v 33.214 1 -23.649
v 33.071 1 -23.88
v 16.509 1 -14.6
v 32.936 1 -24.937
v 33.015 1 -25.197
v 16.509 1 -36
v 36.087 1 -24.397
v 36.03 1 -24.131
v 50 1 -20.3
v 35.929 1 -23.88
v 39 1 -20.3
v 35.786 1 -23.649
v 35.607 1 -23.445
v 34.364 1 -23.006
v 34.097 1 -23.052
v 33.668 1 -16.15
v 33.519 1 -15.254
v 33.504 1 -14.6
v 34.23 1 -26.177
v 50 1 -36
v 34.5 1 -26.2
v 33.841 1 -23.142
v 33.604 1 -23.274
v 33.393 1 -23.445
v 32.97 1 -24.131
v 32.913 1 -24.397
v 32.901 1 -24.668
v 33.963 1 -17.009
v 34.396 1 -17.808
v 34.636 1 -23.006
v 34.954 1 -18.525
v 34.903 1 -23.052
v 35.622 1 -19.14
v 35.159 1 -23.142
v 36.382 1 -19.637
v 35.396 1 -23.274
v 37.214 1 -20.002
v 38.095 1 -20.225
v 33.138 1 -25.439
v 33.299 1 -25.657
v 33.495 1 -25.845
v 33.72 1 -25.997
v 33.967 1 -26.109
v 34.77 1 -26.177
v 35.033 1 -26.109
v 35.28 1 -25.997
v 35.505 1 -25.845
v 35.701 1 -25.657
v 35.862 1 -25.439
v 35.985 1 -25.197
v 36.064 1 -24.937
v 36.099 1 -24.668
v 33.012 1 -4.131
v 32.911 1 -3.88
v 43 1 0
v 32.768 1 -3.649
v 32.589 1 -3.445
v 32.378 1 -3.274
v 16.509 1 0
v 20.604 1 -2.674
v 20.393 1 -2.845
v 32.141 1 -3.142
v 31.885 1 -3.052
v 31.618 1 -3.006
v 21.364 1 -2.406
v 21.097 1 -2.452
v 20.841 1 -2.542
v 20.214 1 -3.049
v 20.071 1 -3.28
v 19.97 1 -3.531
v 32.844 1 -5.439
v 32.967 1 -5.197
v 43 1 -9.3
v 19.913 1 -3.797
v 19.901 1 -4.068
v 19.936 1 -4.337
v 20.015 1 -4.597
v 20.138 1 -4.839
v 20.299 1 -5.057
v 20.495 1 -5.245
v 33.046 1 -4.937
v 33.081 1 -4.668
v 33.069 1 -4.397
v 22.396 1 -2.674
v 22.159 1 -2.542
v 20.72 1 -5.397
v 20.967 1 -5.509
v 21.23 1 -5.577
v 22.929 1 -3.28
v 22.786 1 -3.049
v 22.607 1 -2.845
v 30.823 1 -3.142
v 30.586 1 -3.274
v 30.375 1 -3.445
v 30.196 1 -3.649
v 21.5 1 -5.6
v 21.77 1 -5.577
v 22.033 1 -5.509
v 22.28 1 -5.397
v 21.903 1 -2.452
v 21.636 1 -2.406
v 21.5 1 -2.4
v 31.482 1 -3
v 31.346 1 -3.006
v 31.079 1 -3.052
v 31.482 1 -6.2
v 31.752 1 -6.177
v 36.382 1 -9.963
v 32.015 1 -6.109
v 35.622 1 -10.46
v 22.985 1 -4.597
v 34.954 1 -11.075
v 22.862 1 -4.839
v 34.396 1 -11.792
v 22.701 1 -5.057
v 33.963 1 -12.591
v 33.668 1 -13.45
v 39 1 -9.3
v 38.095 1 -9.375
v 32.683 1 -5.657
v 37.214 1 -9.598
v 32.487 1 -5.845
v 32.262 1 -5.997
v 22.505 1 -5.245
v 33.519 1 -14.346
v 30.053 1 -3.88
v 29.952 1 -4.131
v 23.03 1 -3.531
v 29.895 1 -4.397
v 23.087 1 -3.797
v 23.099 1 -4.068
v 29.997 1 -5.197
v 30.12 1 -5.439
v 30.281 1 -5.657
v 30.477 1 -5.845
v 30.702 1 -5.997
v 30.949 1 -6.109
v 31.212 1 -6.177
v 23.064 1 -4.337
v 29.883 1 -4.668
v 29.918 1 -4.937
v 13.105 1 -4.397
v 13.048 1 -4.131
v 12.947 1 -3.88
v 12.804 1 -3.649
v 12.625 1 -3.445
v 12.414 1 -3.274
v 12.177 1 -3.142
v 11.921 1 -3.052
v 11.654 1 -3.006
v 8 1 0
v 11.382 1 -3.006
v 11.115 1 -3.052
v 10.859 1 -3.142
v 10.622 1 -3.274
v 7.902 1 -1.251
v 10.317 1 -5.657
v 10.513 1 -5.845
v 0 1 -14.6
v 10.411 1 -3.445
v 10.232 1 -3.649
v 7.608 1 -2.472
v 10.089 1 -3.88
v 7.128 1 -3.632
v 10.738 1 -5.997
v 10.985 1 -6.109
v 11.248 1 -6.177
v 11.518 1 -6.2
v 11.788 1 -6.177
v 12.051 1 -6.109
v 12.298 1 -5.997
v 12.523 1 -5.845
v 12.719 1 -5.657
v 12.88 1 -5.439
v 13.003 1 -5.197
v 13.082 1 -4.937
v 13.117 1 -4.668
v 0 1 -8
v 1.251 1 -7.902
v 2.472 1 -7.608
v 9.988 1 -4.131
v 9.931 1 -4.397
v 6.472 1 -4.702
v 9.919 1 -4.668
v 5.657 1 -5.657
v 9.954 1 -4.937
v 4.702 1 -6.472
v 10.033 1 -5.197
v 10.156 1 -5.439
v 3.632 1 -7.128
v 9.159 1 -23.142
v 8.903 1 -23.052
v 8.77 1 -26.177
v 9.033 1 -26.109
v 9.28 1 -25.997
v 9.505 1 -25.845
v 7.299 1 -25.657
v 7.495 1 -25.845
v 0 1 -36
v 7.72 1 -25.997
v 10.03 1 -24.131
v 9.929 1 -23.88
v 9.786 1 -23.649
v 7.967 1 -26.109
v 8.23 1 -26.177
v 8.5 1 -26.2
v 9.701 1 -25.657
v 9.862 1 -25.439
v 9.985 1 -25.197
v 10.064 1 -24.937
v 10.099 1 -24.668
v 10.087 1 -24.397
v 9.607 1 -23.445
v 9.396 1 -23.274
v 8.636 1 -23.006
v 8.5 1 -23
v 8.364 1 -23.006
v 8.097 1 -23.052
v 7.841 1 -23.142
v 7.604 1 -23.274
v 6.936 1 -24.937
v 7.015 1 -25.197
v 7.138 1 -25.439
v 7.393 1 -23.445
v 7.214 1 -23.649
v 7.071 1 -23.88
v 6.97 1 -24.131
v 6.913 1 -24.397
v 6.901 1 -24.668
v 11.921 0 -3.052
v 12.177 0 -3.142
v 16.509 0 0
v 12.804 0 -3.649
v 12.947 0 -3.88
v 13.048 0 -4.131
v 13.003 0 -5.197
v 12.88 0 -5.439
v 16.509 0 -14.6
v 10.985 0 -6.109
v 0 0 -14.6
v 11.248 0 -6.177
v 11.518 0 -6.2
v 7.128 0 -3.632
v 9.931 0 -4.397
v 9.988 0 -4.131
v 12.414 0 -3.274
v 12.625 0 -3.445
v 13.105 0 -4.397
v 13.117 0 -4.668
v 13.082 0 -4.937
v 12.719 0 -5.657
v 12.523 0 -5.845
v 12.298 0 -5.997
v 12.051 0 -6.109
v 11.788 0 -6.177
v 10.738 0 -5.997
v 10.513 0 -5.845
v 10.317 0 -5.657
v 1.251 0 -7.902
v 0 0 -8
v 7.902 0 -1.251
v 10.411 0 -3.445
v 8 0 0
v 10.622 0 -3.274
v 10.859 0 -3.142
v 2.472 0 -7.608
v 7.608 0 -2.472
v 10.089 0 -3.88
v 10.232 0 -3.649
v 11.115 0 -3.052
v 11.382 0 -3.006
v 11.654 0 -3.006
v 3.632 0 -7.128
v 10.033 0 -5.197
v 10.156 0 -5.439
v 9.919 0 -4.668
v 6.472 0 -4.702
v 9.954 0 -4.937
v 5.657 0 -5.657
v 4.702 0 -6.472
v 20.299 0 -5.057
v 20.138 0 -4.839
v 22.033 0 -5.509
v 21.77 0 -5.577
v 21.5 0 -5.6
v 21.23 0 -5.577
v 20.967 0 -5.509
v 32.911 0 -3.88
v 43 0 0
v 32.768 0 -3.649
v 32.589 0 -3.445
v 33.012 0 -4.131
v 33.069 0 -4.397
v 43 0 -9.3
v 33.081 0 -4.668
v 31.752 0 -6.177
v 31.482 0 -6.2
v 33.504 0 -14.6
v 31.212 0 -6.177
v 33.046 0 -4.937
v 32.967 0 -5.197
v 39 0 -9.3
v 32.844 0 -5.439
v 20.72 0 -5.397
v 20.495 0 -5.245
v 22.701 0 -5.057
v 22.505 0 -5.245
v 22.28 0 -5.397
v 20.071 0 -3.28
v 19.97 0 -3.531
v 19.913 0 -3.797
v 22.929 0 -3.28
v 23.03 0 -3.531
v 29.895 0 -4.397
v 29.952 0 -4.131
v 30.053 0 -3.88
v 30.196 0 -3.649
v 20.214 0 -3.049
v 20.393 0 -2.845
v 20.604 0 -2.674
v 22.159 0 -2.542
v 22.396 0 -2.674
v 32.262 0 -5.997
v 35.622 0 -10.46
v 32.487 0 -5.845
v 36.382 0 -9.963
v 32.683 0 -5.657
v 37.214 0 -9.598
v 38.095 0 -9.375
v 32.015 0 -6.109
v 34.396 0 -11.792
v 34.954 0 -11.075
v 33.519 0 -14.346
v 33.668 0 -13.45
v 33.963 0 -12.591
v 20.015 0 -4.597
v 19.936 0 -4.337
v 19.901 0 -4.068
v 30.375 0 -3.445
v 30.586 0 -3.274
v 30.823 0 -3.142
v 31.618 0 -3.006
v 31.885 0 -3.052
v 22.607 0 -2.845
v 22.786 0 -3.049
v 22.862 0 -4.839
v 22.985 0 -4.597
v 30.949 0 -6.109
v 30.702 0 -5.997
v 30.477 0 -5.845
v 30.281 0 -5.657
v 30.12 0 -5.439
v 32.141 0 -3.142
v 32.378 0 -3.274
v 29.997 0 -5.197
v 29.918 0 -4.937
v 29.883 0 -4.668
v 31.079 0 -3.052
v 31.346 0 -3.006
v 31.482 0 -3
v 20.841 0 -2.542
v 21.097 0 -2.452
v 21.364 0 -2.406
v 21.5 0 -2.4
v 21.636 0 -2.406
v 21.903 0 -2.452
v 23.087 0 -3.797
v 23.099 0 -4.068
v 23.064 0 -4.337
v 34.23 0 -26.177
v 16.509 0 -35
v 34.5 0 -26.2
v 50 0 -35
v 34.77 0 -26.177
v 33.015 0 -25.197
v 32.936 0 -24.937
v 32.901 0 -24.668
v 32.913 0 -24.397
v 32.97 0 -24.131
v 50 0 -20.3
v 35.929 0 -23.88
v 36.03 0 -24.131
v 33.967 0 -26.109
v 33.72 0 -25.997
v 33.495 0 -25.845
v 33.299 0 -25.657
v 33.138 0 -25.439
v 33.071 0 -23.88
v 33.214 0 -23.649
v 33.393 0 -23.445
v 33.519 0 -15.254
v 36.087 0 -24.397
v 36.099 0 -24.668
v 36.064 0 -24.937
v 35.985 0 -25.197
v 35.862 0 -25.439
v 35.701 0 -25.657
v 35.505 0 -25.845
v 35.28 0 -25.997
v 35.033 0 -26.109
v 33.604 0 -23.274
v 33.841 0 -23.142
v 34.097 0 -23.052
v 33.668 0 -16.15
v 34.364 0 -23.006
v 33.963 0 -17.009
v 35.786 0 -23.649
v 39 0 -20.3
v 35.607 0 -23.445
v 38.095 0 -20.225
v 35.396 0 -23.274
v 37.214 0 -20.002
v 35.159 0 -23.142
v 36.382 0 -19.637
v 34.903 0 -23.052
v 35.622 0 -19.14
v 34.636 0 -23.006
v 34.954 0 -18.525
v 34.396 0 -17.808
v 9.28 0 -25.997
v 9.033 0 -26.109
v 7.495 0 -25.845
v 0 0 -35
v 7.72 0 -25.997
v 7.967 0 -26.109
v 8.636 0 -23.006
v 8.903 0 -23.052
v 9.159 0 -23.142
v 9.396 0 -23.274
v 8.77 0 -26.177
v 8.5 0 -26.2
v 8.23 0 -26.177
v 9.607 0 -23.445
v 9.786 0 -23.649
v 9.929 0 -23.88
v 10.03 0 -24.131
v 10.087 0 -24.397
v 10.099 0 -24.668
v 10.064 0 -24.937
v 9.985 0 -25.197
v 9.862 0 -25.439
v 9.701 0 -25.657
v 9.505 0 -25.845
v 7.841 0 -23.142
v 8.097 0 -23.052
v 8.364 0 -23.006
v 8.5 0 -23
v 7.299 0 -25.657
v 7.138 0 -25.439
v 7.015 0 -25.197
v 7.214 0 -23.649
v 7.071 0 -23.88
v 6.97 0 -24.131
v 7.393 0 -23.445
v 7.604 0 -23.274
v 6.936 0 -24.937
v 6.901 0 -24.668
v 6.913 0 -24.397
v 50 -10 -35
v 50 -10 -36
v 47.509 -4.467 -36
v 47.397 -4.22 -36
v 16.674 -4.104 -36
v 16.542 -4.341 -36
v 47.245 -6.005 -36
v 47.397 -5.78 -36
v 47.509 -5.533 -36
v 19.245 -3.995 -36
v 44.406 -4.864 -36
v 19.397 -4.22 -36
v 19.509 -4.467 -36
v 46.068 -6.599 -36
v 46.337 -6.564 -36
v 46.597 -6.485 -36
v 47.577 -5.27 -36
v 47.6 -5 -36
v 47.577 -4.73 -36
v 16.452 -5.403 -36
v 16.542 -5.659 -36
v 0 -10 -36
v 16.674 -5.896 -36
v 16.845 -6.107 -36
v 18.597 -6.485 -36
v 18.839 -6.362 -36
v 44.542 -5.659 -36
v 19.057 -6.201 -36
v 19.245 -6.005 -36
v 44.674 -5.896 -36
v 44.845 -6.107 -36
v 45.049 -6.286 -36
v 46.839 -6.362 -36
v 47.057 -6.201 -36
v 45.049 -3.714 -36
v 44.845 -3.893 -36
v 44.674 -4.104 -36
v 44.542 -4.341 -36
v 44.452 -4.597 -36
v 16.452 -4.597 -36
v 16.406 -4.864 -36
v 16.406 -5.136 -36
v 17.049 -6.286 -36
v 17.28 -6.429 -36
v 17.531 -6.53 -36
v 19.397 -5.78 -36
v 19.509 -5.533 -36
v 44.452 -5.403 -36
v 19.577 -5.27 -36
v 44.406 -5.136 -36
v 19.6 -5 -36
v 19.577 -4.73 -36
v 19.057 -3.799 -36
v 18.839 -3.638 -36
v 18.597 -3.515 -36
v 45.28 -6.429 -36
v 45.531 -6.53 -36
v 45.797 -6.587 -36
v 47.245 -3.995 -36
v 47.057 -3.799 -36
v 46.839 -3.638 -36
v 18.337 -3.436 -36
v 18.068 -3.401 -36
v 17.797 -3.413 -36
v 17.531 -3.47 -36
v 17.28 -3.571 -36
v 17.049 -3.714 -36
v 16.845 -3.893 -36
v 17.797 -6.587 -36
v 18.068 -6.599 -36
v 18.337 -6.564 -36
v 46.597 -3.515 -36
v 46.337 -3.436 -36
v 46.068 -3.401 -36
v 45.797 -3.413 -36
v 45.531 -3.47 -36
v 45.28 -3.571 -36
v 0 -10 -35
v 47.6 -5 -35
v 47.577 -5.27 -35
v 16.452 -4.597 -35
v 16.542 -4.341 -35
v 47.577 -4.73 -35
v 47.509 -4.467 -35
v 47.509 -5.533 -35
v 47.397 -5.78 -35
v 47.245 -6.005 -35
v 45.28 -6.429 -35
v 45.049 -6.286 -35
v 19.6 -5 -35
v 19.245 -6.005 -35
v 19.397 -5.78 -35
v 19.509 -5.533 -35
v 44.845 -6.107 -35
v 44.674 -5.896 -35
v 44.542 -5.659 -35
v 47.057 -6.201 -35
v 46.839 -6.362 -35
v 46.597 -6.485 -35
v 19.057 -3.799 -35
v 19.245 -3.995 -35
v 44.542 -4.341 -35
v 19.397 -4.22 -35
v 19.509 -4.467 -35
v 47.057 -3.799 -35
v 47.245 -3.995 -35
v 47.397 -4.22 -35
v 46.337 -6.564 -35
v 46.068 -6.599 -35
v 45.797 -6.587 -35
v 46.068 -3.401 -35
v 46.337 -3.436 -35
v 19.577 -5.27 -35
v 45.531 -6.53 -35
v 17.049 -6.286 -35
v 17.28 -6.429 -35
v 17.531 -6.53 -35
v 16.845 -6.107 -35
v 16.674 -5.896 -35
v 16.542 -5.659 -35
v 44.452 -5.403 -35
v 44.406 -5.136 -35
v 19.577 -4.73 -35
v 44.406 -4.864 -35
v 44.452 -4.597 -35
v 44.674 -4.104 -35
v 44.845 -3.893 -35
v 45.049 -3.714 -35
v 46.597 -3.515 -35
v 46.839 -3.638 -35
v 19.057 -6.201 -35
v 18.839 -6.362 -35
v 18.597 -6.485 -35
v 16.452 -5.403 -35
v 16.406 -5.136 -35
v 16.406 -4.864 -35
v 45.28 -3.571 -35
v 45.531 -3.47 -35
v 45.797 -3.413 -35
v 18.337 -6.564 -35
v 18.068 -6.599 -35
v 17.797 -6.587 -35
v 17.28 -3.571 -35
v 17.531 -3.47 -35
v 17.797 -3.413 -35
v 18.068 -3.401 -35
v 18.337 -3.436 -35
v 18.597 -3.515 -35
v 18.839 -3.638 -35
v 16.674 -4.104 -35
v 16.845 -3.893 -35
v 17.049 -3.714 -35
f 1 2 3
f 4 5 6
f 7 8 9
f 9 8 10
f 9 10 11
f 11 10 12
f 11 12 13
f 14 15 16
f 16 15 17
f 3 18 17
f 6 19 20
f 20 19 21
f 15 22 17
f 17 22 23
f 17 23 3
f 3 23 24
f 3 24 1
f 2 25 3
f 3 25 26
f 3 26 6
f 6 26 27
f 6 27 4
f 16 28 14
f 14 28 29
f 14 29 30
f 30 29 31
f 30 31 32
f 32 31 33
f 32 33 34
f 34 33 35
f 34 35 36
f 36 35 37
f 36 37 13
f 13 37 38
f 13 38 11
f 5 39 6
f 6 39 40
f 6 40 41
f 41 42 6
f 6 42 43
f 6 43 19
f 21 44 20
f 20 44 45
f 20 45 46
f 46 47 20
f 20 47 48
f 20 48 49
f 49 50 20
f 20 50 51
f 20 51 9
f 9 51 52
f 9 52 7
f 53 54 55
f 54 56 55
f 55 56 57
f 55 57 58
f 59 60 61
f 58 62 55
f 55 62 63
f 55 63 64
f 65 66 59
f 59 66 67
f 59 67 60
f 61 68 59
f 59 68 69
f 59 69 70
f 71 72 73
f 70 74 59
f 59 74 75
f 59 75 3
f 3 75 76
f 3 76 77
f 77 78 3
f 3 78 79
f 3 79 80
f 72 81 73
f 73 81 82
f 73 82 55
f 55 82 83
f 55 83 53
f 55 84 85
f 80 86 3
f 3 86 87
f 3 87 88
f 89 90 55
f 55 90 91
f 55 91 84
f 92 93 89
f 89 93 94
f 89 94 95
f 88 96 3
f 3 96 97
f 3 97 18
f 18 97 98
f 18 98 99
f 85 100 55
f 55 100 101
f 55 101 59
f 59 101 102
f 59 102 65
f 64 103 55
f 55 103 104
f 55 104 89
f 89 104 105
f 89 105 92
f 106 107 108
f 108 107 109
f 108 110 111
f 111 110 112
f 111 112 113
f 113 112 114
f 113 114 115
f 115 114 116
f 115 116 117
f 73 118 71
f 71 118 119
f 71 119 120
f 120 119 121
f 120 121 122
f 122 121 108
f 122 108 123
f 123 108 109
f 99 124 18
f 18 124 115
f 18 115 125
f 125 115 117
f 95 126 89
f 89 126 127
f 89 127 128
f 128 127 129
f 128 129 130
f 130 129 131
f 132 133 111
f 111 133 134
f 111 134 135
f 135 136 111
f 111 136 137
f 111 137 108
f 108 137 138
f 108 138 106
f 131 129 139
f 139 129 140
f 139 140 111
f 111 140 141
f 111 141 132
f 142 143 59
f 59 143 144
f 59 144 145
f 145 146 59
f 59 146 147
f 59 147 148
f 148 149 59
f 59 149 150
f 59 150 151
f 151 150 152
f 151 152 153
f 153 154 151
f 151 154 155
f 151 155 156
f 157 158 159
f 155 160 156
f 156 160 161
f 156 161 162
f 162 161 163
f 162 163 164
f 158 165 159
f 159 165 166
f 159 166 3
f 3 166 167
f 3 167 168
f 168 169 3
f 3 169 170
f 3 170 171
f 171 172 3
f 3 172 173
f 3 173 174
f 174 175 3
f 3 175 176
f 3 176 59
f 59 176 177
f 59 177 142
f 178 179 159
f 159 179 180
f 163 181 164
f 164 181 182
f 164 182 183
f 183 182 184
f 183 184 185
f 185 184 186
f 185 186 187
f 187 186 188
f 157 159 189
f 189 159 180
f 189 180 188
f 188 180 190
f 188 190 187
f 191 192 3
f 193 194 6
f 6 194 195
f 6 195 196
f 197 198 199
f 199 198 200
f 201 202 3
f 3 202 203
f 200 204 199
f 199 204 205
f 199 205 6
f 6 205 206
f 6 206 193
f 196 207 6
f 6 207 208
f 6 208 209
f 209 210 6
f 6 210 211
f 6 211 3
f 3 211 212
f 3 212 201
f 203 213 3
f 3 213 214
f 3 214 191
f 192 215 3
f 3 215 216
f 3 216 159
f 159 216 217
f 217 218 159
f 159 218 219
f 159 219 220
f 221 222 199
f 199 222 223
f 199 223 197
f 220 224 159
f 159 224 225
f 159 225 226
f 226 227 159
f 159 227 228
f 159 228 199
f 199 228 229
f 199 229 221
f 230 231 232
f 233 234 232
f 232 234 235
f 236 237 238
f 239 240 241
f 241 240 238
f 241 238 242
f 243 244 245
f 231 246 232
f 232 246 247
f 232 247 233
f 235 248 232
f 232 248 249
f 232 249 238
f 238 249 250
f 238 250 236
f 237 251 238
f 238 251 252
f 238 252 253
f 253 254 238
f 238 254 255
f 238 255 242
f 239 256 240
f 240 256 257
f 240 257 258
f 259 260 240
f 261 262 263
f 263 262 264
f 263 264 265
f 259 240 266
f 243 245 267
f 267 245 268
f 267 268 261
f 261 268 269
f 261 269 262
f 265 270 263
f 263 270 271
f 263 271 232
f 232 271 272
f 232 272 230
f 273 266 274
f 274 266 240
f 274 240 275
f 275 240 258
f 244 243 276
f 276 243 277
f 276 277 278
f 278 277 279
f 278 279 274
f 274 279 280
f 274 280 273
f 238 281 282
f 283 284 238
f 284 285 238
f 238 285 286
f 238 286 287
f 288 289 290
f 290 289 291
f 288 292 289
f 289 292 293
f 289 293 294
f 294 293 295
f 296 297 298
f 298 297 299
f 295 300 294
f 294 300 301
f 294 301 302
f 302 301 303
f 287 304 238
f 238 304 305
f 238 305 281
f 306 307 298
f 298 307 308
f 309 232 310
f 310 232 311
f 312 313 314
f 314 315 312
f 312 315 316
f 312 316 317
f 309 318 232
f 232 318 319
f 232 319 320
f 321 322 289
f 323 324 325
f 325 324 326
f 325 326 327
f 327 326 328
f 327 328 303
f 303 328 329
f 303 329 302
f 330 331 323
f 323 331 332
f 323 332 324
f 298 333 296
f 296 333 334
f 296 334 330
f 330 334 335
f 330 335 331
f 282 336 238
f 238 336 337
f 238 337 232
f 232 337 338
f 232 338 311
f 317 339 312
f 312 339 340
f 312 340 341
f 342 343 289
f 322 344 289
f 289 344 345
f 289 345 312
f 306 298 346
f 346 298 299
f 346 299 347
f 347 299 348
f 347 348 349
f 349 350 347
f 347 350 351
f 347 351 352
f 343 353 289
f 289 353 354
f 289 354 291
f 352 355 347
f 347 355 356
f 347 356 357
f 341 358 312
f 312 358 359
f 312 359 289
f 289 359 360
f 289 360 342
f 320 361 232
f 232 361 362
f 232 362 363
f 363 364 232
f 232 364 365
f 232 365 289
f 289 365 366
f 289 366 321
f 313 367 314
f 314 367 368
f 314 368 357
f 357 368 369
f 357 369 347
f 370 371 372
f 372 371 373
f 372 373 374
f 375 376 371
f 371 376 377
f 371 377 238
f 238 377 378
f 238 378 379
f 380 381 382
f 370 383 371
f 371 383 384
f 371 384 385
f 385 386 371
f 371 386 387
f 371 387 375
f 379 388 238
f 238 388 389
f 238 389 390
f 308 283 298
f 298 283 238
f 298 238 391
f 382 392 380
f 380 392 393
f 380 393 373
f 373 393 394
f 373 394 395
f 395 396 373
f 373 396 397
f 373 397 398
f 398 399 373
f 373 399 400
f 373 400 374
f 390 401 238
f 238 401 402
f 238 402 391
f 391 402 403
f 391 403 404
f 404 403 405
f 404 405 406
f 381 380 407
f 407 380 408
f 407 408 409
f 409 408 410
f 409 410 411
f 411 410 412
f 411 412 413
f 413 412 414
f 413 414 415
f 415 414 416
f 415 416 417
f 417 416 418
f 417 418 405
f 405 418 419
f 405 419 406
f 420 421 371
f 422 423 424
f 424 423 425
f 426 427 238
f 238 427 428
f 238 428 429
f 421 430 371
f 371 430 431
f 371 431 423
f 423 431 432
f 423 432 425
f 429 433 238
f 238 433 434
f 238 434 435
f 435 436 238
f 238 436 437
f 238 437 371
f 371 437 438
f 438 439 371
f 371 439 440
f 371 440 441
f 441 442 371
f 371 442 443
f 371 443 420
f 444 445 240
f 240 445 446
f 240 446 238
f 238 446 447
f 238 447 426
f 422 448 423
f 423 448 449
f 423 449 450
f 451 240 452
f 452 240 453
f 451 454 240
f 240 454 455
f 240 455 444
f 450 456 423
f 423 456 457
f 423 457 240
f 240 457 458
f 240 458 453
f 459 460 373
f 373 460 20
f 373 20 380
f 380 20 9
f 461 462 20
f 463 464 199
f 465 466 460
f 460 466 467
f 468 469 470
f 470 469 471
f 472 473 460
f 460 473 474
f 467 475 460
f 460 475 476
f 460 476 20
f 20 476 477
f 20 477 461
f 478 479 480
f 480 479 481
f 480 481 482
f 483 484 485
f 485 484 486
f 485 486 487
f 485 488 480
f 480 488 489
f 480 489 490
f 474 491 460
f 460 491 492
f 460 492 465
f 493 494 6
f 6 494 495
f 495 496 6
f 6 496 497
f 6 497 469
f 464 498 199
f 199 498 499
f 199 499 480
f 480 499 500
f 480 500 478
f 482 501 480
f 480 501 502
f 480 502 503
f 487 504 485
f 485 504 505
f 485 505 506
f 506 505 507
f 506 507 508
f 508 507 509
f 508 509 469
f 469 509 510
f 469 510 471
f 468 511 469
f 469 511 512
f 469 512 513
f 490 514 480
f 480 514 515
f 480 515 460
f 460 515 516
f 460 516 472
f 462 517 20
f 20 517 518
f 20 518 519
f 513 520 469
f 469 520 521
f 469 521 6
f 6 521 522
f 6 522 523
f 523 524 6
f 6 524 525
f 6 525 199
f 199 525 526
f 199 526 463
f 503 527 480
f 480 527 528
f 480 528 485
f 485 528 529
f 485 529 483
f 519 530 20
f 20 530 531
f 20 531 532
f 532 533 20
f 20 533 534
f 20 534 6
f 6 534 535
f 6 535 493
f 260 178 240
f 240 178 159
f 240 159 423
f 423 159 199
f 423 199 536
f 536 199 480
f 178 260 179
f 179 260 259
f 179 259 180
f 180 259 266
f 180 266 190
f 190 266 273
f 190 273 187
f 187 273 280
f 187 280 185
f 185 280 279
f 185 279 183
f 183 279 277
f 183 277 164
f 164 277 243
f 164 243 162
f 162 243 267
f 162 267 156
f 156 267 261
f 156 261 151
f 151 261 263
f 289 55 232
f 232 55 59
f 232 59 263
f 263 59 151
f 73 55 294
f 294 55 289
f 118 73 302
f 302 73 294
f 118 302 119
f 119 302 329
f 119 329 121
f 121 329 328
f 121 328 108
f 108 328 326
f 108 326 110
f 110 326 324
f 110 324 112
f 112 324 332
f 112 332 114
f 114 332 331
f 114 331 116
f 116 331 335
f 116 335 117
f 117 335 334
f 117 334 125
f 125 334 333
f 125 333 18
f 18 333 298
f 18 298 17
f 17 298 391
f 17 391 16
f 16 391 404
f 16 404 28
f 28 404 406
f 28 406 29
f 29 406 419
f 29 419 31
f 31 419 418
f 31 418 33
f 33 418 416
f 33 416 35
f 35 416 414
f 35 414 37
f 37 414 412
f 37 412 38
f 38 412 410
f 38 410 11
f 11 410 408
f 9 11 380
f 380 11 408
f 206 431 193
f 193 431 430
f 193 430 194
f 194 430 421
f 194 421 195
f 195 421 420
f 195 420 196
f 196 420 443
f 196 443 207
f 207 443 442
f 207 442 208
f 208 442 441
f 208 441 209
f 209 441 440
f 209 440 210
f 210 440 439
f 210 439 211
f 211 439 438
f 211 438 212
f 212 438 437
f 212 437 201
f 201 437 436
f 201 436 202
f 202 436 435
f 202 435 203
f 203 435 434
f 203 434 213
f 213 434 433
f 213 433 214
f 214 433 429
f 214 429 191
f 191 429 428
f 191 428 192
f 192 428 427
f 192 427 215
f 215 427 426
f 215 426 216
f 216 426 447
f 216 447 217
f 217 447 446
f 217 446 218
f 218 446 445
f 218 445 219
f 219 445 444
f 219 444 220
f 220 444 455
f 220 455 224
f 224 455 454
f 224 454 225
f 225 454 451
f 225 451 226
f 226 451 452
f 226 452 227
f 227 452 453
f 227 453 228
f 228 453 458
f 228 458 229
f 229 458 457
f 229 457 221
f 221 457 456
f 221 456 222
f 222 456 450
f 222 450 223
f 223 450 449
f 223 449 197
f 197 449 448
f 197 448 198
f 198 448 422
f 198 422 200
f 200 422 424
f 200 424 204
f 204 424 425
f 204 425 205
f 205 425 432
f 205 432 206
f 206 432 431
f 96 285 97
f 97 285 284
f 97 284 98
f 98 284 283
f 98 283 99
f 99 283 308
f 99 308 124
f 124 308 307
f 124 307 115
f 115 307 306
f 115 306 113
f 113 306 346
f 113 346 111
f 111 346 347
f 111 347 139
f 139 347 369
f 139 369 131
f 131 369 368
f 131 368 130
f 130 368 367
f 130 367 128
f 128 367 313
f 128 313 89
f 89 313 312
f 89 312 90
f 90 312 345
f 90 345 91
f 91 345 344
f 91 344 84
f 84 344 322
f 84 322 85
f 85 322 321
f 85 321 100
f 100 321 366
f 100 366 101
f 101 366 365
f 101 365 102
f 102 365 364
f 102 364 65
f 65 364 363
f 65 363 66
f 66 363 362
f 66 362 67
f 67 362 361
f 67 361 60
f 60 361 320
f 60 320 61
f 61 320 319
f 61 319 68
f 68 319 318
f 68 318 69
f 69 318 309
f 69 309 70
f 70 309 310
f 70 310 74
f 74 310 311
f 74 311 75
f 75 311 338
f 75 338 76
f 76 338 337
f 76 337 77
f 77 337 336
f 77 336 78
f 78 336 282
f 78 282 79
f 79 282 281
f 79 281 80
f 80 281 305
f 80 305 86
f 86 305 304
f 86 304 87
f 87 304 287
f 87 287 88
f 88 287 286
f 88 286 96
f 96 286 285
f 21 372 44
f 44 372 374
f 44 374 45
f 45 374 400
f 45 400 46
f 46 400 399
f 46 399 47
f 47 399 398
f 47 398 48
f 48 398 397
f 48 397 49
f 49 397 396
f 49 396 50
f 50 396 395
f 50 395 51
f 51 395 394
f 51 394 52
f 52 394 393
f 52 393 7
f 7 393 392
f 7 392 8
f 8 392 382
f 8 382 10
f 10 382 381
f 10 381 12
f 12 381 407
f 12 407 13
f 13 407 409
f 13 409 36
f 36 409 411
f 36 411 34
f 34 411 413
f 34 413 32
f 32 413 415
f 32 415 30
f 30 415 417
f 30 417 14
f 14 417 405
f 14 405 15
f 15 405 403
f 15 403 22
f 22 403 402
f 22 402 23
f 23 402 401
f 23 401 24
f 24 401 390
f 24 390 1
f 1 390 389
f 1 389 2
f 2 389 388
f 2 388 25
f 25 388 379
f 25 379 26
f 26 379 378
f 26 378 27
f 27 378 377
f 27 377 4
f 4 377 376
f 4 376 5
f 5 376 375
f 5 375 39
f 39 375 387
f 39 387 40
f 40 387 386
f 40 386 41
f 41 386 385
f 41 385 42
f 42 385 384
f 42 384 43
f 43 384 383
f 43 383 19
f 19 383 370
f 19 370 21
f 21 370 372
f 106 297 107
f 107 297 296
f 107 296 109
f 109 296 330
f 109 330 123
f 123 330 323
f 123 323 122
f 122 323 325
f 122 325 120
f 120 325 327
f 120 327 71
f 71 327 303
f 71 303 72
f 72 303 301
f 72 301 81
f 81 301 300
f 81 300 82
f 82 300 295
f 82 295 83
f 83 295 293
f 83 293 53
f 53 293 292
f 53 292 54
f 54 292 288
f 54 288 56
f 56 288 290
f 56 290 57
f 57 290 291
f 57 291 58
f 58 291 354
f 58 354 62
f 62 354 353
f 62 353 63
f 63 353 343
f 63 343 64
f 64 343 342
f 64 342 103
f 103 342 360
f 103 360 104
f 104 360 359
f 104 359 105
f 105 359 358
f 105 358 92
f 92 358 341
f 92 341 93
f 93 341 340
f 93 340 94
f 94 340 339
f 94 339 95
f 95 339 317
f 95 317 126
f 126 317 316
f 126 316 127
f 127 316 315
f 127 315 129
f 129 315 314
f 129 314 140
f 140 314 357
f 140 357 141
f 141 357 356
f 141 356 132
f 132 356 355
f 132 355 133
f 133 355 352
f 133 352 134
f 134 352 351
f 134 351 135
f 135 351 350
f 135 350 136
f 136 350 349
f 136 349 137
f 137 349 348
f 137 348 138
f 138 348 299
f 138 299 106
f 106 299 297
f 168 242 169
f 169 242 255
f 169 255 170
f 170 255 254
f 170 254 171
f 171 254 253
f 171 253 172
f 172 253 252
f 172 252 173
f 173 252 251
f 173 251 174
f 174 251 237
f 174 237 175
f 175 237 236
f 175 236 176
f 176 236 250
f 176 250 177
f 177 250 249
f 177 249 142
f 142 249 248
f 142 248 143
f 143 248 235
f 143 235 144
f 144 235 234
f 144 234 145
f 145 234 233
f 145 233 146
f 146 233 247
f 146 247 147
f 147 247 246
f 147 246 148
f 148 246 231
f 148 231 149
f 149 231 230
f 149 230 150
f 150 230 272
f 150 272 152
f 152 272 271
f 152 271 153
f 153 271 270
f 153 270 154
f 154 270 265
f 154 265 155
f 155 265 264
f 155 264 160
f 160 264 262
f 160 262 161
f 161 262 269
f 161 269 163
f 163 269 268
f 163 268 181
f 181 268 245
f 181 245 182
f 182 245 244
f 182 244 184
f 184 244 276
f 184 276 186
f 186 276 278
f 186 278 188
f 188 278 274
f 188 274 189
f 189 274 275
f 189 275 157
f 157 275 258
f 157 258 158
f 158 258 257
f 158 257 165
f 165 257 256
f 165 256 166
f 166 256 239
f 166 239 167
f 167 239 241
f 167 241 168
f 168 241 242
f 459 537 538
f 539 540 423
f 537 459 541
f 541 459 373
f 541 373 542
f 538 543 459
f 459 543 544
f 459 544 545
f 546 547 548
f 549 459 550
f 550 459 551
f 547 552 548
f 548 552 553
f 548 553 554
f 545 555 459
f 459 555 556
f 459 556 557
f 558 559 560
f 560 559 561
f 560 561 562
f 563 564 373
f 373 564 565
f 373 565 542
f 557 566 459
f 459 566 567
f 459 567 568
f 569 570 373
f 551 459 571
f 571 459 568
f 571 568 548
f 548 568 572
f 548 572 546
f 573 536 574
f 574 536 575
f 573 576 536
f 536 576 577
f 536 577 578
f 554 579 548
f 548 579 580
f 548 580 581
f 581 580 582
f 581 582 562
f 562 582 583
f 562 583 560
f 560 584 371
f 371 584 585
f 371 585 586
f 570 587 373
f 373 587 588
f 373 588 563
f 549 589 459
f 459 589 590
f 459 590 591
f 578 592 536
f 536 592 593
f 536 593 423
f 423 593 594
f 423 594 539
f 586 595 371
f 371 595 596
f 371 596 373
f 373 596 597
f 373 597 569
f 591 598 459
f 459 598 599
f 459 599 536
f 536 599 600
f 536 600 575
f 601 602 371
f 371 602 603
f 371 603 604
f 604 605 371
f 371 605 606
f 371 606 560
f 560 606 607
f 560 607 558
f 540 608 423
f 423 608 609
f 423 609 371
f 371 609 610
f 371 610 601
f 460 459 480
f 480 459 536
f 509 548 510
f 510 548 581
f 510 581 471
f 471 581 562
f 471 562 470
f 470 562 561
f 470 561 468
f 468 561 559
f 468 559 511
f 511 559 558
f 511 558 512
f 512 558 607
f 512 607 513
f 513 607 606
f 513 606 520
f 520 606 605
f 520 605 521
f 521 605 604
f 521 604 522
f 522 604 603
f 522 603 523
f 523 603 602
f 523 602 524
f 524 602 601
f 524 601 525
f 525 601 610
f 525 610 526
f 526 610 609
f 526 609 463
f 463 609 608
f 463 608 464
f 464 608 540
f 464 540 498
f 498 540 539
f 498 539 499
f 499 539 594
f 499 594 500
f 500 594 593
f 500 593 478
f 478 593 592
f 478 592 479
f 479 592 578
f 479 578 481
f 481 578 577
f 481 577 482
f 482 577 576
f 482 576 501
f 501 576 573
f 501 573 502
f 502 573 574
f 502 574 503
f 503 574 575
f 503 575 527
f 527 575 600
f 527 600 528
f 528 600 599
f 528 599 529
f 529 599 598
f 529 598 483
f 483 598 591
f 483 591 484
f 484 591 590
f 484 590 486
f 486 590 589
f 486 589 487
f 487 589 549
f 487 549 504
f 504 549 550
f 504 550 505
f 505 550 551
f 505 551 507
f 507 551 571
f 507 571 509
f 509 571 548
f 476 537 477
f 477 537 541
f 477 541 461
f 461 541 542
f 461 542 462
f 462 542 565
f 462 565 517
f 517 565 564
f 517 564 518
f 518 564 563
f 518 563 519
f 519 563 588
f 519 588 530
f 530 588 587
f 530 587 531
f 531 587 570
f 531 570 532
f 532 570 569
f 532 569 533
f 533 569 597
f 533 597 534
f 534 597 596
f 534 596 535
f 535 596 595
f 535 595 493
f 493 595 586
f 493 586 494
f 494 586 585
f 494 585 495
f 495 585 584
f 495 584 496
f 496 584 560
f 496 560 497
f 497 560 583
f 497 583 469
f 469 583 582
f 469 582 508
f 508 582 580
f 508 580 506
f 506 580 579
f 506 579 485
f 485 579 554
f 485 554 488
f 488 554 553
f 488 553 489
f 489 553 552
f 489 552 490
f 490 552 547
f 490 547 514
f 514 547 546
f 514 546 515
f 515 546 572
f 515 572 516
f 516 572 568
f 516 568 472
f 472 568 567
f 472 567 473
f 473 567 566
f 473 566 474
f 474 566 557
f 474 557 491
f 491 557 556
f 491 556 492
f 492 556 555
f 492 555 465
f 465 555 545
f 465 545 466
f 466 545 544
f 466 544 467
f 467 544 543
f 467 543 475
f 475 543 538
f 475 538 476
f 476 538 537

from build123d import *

# Parameters (mm, degrees)
SKETCH_1_R          = 1.6
EXTRUDE_1_DEPTH     = 1
SKETCH_2_W          = 50
SKETCH_2_H          = 1
EXTRUDE_2_DEPTH     = 11
SKETCH_3_R          = 1.6
CUT_EXTRUDE_1_DEPTH = 10


with BuildPart() as part:
    # 草图1 → 凸台-拉伸1 (new body)
    with BuildSketch(Plane(origin=(0, 0, 0), x_dir=(1, 0, 0), z_dir=(0, 1, 0))):
        with BuildLine():
            Line((8, 0), (43, 0))
            Line((43, 0), (43, 9.3))
            Line((43, 9.3), (39, 9.3))
            ThreePointArc((39, 9.3), (33.5, 14.8), (39, 20.3))
            Line((39, 20.3), (50, 20.3))
            Line((50, 20.3), (50, 36))
            Line((50, 36), (0, 36))
            Line((0, 36), (0, 8))
            ThreePointArc((0, 8), (5.656854249, 5.656854249), (8, 0))
        make_face()
        with Locations(Location((8.5, 24.6, 0), (0, 0, 270))):
            Circle(SKETCH_1_R, mode=Mode.SUBTRACT)
        with Locations(Location((21.5, 4, 0), (0, 0, 270))):
            Circle(SKETCH_1_R, mode=Mode.SUBTRACT)
        with Locations(Location((34.5, 24.6, 0), (0, 0, 90))):
            Circle(SKETCH_1_R, mode=Mode.SUBTRACT)
        with Locations(Location((31.481983771, 4.6, 0), (0, 0, 270))):
            Circle(SKETCH_1_R, mode=Mode.SUBTRACT)
        with Locations(Location((11.518016229, 4.6, 0), (0, 0, 90))):
            Circle(SKETCH_1_R, mode=Mode.SUBTRACT)
    extrude(amount=EXTRUDE_1_DEPTH)

    # 草图2 → 凸台-拉伸2 (add)
    with BuildSketch(Plane(origin=(0, 1, 0), x_dir=(1, 0, 0), z_dir=(0, 1, 0))):
        with Locations((25, 35.5)):
            Rectangle(SKETCH_2_W, SKETCH_2_H)
    extrude(amount=-EXTRUDE_2_DEPTH)

    # 草图3 → 切除-拉伸1 (cut)
    with BuildSketch(Plane.XY.offset(-35)):
        with Locations((46, -5)):
            Circle(SKETCH_3_R)
        with Locations((18, -5)):
            Circle(SKETCH_3_R)
    extrude(amount=-CUT_EXTRUDE_1_DEPTH, mode=Mode.SUBTRACT)


solid = part.part
